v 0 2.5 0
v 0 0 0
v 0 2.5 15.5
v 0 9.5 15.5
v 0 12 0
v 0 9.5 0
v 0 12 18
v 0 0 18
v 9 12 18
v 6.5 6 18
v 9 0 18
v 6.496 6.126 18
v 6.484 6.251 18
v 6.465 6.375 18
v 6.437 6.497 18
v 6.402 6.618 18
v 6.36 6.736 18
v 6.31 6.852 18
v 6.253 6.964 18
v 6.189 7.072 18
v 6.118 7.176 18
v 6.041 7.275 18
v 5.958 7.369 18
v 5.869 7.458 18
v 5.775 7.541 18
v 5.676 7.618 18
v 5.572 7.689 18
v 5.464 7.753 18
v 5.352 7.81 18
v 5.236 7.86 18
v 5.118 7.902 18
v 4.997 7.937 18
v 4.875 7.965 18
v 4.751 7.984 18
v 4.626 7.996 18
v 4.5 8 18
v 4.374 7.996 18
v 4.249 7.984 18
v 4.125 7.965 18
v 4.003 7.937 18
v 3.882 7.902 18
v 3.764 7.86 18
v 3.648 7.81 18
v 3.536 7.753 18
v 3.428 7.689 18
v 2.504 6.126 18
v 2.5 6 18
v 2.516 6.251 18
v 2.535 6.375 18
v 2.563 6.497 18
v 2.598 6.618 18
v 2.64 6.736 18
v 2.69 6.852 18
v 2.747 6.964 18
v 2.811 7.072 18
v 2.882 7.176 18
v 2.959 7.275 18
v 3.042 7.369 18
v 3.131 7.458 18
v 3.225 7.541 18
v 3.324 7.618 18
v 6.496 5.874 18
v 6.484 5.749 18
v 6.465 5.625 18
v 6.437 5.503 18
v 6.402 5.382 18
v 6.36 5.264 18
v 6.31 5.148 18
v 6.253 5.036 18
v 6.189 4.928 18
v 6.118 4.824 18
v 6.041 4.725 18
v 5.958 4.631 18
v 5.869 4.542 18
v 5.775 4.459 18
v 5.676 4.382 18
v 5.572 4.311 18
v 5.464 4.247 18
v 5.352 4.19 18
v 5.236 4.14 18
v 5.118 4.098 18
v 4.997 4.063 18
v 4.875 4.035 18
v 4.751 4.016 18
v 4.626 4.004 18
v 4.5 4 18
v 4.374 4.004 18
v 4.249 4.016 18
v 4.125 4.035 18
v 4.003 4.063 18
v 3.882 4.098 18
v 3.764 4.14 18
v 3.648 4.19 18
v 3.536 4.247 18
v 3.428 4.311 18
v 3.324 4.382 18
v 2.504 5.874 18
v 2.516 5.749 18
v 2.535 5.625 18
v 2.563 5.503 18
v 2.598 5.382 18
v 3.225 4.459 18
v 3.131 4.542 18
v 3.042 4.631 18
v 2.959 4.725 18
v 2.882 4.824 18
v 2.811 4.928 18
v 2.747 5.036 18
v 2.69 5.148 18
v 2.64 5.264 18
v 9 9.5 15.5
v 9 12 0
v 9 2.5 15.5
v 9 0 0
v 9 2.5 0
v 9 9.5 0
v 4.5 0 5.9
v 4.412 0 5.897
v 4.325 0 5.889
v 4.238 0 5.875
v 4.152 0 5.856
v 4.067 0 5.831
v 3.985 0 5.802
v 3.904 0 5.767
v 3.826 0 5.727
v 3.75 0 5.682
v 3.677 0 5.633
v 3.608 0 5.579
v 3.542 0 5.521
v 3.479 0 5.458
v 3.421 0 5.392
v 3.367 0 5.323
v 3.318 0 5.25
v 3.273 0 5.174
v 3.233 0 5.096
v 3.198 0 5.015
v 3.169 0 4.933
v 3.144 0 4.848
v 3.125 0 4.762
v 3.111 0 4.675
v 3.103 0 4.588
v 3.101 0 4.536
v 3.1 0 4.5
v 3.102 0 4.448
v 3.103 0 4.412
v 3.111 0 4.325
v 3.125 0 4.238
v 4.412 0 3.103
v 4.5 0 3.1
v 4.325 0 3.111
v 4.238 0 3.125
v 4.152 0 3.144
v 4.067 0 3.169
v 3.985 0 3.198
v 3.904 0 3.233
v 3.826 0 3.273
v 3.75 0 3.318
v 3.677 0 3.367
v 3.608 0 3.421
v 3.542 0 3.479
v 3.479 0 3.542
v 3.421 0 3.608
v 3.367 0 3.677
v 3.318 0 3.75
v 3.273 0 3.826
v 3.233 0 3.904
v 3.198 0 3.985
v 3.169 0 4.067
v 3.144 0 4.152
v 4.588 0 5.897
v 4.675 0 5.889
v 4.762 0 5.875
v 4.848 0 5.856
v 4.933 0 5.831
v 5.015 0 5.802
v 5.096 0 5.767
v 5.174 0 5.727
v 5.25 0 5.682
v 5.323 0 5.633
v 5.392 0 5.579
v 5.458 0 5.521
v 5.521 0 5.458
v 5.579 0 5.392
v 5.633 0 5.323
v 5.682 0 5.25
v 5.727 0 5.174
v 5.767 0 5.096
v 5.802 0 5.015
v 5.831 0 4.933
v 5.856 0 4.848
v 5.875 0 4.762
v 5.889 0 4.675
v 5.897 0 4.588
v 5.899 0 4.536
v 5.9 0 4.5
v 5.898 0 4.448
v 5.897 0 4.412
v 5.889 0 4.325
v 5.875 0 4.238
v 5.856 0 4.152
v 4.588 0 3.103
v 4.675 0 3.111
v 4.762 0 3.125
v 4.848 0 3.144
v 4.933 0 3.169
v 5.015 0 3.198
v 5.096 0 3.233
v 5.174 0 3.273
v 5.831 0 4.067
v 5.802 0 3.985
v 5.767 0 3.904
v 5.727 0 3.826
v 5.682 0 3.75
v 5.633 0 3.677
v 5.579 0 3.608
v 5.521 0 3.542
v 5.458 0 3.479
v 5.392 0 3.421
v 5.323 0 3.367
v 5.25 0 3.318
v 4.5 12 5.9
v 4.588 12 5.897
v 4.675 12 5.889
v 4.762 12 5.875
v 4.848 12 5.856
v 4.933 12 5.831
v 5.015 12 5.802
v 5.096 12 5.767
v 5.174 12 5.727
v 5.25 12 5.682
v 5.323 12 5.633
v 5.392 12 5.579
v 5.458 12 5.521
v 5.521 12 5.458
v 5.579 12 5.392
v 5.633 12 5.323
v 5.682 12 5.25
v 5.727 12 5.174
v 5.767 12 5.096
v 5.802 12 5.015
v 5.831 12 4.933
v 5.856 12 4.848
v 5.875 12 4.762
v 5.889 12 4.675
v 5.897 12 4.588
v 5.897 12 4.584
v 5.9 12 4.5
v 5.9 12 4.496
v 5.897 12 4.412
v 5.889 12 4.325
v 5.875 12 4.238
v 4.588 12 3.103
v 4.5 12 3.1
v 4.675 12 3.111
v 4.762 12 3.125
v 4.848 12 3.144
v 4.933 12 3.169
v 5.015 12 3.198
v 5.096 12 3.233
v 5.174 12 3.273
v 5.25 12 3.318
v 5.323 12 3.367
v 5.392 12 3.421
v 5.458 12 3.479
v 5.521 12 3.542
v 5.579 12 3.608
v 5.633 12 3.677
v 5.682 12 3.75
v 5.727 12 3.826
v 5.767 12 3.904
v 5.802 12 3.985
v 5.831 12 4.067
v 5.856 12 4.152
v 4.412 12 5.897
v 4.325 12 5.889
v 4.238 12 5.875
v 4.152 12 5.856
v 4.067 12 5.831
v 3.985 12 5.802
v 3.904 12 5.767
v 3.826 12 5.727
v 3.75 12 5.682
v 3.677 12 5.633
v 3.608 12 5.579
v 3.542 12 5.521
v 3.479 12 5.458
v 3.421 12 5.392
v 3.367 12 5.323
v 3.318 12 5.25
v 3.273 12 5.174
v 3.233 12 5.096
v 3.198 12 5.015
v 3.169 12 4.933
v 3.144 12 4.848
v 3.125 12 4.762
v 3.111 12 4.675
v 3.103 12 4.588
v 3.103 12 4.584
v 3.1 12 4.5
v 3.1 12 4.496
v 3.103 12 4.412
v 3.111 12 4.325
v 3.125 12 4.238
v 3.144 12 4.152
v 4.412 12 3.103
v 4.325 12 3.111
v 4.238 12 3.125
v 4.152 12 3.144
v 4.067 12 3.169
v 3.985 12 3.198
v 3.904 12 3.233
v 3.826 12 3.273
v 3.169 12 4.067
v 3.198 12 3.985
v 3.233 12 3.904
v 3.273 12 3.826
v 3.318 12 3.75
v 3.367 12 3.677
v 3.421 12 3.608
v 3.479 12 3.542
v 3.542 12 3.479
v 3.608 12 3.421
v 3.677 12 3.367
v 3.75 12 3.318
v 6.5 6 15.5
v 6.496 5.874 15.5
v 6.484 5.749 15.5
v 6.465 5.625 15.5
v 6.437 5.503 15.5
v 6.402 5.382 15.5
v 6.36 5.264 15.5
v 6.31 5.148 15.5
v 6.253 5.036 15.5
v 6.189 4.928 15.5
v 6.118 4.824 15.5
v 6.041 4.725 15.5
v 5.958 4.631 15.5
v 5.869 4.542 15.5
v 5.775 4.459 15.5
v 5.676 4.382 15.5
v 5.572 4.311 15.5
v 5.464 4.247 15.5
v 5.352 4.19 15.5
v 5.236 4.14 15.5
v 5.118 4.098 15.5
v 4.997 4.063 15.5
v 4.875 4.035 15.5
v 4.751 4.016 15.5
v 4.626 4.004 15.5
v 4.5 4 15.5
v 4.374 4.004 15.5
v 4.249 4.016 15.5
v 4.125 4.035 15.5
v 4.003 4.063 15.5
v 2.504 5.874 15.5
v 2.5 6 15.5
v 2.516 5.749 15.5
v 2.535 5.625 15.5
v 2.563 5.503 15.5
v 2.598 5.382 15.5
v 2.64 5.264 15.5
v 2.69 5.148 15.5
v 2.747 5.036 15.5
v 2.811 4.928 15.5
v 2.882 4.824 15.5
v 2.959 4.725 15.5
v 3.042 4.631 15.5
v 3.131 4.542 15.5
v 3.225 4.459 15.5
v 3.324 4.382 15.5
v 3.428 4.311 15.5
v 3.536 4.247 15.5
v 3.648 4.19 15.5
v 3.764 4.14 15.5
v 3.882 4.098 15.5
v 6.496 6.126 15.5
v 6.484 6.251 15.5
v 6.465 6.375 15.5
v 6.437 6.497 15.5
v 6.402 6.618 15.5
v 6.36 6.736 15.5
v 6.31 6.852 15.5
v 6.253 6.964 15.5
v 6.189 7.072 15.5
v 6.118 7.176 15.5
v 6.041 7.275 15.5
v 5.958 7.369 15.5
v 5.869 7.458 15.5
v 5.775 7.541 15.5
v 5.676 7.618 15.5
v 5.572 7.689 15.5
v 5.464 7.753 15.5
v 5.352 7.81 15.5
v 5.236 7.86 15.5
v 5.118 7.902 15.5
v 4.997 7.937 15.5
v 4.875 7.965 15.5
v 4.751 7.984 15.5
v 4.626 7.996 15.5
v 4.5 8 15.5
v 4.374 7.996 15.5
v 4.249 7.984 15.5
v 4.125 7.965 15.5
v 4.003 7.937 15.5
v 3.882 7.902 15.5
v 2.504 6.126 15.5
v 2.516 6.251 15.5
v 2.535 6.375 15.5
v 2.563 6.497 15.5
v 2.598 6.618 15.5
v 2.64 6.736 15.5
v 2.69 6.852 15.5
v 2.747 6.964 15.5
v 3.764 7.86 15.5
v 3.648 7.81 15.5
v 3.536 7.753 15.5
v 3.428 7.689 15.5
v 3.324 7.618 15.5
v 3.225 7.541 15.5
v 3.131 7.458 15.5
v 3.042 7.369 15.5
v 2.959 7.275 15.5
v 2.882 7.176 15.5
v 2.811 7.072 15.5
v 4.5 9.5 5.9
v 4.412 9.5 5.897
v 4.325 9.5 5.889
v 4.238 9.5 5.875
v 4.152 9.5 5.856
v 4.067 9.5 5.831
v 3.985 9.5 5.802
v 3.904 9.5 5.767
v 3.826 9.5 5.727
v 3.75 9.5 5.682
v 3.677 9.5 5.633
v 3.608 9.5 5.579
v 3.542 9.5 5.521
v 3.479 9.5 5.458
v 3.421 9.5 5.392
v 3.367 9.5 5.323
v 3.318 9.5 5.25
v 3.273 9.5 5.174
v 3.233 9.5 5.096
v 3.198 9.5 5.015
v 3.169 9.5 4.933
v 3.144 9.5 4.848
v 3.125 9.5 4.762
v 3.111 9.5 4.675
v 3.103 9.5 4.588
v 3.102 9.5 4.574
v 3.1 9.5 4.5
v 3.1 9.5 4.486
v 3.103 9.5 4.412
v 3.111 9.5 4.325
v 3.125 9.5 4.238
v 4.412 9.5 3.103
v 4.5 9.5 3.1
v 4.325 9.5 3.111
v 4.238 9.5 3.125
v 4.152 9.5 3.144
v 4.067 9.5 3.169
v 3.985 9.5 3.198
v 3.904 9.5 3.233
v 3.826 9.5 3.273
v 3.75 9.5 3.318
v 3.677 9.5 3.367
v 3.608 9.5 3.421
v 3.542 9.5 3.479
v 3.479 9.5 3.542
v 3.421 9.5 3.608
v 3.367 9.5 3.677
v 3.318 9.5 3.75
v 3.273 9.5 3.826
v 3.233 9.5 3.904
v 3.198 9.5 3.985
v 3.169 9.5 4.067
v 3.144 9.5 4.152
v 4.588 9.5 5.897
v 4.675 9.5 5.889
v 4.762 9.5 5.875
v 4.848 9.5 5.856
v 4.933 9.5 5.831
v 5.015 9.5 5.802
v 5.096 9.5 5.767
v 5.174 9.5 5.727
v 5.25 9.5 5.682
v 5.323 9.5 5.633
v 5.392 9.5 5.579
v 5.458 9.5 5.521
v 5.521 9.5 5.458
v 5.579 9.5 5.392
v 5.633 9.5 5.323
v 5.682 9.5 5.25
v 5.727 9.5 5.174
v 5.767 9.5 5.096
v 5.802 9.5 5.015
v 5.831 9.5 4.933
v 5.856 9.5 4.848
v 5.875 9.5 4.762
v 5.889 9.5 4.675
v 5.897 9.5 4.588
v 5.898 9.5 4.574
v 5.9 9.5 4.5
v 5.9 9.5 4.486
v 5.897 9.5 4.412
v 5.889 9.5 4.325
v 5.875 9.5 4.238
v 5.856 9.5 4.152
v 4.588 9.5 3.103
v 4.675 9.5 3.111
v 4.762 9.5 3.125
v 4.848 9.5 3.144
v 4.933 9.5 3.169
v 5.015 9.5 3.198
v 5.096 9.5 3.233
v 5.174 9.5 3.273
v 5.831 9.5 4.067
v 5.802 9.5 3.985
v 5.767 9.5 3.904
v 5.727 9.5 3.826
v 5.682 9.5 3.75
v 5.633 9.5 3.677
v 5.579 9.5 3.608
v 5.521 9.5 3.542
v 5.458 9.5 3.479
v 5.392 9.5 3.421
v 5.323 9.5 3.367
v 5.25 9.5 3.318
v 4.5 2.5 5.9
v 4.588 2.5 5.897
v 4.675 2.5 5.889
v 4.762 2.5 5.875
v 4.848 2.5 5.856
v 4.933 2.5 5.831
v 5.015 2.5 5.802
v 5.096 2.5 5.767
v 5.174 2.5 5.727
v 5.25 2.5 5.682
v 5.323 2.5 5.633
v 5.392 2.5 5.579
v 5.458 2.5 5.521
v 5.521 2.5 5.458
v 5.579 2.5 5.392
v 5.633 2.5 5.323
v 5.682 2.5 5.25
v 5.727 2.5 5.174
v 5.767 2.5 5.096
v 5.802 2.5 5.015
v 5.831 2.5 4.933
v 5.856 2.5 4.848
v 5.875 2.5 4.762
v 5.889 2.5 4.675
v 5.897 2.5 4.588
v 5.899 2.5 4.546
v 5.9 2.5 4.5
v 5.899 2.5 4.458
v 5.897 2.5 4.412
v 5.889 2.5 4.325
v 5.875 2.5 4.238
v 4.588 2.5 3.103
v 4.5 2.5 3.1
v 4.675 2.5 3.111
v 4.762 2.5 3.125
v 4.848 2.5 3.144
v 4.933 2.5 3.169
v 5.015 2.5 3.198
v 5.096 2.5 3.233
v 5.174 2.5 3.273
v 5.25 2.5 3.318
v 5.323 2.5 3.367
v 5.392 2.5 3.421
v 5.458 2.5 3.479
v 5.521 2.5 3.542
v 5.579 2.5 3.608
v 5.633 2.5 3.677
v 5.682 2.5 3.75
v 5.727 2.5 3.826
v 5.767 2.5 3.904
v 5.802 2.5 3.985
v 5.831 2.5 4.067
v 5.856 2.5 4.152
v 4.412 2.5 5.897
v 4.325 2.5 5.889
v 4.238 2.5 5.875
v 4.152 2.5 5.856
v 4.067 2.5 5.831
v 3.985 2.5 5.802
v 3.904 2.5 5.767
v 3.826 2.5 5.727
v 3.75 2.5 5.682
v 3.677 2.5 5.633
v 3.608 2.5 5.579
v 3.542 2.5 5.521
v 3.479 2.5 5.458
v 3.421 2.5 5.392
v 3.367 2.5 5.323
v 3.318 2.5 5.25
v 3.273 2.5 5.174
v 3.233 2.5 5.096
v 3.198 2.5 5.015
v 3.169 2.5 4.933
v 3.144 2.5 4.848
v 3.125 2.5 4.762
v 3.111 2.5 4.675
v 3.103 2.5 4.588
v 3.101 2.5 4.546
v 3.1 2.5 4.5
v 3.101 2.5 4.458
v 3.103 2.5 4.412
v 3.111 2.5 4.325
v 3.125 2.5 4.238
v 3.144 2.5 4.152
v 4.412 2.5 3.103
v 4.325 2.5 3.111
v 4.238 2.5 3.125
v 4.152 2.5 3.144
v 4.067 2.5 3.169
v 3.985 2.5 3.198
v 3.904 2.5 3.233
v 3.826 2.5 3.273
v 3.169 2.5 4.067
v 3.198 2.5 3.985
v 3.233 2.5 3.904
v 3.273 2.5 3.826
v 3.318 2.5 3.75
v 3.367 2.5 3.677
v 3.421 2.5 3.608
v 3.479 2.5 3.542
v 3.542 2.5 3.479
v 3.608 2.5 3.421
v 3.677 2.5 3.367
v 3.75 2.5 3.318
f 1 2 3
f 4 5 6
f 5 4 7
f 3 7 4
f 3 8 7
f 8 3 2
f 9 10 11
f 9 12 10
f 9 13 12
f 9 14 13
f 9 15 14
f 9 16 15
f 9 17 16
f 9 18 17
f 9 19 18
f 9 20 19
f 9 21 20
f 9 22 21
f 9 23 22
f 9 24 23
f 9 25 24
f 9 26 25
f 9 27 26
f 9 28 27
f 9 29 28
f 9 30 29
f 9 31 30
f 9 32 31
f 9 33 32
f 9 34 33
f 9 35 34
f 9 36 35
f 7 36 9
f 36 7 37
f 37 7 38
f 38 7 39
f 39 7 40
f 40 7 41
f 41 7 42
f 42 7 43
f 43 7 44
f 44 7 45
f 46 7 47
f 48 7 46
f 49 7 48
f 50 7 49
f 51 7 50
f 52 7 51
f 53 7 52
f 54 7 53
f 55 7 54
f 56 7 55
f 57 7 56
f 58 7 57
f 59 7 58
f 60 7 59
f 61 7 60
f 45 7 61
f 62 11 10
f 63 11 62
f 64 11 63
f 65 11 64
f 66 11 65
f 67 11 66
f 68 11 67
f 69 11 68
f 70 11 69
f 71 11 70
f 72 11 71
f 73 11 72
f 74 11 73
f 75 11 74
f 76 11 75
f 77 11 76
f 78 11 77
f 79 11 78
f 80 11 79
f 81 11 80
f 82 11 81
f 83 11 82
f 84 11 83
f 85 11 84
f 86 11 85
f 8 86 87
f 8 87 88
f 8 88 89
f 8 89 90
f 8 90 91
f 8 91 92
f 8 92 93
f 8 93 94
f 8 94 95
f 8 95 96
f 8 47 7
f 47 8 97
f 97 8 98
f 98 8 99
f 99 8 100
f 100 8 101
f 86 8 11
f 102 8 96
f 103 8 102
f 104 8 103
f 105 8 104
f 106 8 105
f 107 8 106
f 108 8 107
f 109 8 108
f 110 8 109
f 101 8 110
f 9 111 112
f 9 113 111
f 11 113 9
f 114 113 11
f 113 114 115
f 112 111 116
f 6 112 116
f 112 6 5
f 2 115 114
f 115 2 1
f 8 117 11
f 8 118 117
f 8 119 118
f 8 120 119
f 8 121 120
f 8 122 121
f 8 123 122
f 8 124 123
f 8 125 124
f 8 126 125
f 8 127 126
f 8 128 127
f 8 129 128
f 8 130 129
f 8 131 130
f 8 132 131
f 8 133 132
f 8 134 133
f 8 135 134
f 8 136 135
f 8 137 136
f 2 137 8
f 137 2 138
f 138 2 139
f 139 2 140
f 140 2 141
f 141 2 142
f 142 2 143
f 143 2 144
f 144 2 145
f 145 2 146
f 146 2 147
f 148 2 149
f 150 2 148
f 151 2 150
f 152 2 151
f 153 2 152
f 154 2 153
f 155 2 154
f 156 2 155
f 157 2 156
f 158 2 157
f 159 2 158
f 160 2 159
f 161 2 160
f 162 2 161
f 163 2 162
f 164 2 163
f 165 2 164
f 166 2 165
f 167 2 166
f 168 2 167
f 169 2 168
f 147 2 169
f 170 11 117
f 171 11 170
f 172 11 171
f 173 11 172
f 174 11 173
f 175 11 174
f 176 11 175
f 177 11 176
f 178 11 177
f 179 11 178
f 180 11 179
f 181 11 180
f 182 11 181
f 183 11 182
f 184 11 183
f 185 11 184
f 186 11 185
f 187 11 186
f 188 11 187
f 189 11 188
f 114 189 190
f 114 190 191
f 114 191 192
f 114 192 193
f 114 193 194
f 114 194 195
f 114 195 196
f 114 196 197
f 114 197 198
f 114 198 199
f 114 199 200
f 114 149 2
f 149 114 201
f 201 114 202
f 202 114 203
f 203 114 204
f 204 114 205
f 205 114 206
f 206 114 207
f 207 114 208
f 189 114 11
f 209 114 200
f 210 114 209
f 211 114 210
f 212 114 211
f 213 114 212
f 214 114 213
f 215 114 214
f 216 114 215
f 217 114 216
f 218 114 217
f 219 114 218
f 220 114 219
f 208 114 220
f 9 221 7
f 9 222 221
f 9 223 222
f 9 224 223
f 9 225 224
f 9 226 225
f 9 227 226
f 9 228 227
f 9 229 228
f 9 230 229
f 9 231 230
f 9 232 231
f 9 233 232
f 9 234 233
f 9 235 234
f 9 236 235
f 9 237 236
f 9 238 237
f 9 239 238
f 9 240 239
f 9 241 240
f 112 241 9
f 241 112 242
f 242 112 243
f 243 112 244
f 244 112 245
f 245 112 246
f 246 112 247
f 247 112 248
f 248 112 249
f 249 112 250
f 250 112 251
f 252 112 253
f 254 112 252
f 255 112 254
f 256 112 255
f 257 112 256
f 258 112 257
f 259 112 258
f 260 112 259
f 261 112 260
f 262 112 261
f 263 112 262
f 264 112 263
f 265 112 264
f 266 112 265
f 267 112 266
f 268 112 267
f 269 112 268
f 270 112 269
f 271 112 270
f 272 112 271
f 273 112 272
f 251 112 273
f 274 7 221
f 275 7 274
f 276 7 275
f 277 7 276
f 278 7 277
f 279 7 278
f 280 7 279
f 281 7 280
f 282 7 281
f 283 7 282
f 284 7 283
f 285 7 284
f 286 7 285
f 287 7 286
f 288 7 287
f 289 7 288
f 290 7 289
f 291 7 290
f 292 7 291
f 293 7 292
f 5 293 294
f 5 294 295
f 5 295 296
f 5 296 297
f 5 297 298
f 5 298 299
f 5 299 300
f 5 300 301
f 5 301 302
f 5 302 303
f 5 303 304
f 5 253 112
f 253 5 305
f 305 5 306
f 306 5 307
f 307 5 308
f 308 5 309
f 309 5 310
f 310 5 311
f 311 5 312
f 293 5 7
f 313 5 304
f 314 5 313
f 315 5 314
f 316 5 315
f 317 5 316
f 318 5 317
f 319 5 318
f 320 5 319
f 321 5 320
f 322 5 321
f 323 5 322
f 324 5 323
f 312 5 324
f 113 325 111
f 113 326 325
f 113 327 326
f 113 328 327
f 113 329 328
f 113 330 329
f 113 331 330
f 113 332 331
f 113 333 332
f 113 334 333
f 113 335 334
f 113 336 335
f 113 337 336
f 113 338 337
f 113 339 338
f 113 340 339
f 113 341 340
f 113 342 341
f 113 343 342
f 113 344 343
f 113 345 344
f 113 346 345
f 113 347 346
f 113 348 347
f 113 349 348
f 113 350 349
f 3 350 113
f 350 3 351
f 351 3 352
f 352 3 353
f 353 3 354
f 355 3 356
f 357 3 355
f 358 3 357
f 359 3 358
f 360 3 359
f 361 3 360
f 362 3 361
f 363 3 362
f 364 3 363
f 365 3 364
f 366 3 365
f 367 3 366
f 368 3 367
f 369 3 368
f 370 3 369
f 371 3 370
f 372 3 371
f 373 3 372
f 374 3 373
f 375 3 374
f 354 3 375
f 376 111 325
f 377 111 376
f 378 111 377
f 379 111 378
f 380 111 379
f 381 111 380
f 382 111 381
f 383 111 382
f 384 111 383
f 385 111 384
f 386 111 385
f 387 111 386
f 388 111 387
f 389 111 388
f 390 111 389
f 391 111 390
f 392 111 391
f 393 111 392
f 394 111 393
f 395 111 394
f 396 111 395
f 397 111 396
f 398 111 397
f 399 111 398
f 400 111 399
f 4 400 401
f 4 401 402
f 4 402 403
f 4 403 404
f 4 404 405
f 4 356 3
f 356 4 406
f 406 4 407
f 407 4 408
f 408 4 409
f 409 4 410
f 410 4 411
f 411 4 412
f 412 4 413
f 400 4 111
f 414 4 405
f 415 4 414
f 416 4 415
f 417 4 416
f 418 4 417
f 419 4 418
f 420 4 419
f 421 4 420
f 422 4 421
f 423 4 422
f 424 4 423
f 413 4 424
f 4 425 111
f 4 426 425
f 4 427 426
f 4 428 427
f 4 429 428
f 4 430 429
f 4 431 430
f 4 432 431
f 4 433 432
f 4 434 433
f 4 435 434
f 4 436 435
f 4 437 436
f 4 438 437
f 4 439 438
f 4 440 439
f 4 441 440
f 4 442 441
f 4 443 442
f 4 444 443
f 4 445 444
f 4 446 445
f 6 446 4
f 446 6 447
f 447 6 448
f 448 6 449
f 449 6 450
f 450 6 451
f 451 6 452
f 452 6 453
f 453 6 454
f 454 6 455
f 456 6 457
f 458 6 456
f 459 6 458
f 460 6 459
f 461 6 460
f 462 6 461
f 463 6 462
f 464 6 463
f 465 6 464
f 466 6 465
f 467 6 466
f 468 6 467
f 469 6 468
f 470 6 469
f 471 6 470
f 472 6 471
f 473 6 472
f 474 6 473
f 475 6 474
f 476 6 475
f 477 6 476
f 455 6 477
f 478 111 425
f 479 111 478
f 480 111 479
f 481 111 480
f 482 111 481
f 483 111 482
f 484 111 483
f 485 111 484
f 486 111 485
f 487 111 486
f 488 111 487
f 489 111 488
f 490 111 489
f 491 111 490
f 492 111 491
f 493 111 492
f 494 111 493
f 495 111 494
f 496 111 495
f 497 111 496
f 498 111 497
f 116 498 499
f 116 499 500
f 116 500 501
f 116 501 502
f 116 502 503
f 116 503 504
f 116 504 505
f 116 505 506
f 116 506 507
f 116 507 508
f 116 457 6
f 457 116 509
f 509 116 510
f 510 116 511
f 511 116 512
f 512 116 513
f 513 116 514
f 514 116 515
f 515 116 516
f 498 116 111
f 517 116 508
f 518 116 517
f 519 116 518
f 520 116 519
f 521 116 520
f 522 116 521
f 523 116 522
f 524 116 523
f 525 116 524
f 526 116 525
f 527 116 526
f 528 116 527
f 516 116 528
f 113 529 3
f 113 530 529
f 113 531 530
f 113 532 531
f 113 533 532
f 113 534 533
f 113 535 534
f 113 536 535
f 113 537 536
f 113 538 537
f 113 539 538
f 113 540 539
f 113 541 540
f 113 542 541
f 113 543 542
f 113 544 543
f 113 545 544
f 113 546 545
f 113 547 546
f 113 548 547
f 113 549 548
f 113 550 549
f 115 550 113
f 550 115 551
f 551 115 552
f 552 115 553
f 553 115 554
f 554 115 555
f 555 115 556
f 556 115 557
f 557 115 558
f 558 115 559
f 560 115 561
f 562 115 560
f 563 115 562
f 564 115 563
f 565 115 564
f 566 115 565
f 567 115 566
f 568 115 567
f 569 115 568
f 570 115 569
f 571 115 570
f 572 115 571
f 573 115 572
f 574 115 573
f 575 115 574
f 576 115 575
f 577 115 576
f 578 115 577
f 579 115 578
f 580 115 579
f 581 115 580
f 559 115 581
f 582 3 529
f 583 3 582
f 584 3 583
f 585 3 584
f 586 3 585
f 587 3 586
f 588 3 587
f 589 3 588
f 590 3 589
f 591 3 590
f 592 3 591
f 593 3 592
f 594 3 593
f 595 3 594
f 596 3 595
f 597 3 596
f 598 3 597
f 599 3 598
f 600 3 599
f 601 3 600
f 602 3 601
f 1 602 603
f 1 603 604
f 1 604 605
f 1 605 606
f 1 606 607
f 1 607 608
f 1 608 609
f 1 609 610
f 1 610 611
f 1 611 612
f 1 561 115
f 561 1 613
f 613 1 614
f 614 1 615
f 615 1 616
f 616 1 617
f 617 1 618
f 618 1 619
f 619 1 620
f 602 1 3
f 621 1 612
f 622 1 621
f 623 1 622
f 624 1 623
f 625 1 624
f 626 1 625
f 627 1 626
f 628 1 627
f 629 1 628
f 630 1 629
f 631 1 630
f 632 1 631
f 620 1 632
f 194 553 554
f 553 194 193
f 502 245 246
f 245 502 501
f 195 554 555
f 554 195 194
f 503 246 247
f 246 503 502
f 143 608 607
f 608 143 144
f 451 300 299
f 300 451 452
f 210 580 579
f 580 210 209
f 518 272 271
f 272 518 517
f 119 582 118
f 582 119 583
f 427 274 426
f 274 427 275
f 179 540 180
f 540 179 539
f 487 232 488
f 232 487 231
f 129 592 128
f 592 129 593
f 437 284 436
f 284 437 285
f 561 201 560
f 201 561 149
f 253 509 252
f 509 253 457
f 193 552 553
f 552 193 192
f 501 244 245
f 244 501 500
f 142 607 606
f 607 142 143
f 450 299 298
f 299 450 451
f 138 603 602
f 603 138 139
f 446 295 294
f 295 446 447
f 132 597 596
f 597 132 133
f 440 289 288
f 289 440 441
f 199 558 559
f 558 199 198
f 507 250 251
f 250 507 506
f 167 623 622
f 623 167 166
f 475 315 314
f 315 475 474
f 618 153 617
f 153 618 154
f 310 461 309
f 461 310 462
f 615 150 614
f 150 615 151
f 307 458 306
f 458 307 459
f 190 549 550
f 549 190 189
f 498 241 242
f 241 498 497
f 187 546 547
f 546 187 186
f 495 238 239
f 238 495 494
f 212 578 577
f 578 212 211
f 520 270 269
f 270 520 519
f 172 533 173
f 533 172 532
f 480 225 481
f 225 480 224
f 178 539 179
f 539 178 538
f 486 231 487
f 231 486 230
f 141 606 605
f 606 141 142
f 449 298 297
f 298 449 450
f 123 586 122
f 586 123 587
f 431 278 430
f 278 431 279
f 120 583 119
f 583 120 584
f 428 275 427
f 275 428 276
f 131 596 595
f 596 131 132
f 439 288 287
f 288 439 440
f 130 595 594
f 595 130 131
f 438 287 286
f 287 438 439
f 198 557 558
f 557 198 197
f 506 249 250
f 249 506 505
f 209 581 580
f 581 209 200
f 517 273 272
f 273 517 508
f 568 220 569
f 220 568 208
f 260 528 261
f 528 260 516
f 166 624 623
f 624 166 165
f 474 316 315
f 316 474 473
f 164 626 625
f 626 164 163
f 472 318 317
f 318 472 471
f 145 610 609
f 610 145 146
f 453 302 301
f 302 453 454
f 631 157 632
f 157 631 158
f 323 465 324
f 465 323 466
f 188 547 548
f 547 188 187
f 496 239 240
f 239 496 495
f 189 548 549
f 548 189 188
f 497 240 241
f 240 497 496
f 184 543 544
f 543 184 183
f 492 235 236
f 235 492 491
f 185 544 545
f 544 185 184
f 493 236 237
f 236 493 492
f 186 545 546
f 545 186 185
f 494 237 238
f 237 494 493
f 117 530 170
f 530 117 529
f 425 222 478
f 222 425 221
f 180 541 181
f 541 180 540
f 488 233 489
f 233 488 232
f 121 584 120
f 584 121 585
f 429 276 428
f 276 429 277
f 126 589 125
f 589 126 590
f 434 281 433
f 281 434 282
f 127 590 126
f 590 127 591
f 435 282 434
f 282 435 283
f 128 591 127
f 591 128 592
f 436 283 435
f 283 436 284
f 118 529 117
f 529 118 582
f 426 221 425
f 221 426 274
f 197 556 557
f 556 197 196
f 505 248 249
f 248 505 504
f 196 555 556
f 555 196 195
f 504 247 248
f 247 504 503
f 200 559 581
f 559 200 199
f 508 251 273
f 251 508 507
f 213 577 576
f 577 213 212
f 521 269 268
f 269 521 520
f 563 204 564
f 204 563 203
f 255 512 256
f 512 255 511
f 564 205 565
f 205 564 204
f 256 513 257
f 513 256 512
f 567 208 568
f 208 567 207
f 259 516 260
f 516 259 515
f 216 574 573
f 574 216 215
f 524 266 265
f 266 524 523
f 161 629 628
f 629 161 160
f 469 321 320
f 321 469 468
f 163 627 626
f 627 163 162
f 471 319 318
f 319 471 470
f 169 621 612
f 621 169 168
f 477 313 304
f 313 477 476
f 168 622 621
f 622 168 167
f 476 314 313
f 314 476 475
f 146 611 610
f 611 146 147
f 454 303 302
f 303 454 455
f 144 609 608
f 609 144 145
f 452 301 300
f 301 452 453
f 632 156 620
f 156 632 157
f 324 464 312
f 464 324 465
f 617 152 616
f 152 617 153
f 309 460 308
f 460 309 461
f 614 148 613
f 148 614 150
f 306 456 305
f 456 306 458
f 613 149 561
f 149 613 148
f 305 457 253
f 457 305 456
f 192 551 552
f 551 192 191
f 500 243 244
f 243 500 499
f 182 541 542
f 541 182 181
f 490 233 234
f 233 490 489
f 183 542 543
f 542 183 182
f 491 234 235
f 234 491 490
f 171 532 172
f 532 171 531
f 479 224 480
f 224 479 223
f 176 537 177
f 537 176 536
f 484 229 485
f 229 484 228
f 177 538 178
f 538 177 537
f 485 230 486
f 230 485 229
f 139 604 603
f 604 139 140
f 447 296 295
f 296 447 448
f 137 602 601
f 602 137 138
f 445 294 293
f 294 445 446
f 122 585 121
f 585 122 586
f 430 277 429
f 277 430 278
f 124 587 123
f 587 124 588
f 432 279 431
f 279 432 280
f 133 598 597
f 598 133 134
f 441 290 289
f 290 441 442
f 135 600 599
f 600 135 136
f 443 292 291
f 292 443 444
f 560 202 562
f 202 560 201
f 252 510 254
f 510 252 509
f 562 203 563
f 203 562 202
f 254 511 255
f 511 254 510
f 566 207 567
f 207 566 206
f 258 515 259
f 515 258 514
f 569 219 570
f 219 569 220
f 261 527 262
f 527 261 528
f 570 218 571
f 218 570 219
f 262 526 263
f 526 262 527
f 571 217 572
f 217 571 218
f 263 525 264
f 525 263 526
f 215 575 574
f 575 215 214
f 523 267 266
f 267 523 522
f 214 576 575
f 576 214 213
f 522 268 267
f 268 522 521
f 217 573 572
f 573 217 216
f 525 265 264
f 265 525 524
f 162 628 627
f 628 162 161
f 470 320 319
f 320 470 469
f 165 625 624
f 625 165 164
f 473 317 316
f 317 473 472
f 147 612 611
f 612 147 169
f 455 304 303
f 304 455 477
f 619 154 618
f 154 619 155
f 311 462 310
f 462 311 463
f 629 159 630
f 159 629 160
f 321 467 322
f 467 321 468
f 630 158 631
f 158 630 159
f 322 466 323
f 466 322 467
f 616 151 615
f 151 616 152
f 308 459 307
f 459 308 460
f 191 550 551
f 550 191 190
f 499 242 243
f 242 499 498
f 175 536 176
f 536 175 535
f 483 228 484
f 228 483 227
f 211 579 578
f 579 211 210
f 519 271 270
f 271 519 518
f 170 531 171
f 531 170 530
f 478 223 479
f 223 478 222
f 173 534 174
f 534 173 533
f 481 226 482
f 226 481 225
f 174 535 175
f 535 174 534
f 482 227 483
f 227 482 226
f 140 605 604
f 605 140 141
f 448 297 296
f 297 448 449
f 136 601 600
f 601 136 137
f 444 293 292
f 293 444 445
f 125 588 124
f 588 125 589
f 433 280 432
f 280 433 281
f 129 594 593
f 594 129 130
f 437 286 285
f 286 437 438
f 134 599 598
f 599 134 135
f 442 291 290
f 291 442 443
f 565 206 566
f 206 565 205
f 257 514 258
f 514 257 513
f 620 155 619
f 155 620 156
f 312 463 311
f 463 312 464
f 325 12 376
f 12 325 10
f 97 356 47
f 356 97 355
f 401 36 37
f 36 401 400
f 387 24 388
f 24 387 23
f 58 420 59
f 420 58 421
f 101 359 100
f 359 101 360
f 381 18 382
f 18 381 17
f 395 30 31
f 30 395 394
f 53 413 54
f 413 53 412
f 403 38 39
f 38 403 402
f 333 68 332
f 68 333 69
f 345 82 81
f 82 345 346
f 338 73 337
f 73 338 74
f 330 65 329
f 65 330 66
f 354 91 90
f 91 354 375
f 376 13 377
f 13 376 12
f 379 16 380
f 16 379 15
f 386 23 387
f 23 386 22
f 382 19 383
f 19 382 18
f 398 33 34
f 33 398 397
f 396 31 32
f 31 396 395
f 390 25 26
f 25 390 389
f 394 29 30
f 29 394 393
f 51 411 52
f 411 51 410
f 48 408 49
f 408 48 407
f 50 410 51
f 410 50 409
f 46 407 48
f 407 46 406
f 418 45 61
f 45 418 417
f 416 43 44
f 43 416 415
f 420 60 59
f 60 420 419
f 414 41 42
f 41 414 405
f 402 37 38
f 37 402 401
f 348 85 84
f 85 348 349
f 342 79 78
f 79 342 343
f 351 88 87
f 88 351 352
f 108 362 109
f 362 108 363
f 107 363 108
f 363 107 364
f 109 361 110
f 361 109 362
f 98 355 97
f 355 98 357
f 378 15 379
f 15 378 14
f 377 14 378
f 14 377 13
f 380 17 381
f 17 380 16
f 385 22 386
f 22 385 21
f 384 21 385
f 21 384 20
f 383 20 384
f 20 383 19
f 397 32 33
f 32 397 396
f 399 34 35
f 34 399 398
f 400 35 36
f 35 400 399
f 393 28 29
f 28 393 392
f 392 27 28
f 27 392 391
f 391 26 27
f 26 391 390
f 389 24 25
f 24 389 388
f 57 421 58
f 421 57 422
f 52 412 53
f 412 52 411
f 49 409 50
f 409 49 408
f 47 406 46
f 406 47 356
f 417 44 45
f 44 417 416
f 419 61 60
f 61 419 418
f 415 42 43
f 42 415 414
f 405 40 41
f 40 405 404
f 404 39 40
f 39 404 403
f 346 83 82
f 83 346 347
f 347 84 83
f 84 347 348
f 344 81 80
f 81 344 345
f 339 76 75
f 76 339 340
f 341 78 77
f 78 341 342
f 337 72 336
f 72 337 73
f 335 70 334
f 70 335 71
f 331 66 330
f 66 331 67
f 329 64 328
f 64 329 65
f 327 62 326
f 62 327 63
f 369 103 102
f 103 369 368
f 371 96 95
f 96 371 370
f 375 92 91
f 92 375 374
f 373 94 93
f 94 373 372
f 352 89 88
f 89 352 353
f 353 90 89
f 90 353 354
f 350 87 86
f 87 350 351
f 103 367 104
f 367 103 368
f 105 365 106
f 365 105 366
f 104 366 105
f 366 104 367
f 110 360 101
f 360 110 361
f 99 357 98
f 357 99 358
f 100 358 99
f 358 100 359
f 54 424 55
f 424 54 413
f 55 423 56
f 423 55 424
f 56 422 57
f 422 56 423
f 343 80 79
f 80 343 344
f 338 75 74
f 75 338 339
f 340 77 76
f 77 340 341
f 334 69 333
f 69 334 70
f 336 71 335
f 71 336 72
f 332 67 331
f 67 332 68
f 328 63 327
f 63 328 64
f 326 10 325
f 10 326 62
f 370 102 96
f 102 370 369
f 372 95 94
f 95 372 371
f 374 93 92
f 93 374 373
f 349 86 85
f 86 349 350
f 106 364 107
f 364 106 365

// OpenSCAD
$fn=100;
tensioner();
module tensioner(){
    difference(){
        cube([9,12,18]);
        translate([-0.5,2.5,-0.5]){
            cube([11,7,16]);
        }
        rotate([90,0,0])
            translate([4.5,4.5,-13])
                cylinder(h=22,r=1.4);
        translate([4.5,6,0])
            cylinder(r=2,h=20);
    }
}
